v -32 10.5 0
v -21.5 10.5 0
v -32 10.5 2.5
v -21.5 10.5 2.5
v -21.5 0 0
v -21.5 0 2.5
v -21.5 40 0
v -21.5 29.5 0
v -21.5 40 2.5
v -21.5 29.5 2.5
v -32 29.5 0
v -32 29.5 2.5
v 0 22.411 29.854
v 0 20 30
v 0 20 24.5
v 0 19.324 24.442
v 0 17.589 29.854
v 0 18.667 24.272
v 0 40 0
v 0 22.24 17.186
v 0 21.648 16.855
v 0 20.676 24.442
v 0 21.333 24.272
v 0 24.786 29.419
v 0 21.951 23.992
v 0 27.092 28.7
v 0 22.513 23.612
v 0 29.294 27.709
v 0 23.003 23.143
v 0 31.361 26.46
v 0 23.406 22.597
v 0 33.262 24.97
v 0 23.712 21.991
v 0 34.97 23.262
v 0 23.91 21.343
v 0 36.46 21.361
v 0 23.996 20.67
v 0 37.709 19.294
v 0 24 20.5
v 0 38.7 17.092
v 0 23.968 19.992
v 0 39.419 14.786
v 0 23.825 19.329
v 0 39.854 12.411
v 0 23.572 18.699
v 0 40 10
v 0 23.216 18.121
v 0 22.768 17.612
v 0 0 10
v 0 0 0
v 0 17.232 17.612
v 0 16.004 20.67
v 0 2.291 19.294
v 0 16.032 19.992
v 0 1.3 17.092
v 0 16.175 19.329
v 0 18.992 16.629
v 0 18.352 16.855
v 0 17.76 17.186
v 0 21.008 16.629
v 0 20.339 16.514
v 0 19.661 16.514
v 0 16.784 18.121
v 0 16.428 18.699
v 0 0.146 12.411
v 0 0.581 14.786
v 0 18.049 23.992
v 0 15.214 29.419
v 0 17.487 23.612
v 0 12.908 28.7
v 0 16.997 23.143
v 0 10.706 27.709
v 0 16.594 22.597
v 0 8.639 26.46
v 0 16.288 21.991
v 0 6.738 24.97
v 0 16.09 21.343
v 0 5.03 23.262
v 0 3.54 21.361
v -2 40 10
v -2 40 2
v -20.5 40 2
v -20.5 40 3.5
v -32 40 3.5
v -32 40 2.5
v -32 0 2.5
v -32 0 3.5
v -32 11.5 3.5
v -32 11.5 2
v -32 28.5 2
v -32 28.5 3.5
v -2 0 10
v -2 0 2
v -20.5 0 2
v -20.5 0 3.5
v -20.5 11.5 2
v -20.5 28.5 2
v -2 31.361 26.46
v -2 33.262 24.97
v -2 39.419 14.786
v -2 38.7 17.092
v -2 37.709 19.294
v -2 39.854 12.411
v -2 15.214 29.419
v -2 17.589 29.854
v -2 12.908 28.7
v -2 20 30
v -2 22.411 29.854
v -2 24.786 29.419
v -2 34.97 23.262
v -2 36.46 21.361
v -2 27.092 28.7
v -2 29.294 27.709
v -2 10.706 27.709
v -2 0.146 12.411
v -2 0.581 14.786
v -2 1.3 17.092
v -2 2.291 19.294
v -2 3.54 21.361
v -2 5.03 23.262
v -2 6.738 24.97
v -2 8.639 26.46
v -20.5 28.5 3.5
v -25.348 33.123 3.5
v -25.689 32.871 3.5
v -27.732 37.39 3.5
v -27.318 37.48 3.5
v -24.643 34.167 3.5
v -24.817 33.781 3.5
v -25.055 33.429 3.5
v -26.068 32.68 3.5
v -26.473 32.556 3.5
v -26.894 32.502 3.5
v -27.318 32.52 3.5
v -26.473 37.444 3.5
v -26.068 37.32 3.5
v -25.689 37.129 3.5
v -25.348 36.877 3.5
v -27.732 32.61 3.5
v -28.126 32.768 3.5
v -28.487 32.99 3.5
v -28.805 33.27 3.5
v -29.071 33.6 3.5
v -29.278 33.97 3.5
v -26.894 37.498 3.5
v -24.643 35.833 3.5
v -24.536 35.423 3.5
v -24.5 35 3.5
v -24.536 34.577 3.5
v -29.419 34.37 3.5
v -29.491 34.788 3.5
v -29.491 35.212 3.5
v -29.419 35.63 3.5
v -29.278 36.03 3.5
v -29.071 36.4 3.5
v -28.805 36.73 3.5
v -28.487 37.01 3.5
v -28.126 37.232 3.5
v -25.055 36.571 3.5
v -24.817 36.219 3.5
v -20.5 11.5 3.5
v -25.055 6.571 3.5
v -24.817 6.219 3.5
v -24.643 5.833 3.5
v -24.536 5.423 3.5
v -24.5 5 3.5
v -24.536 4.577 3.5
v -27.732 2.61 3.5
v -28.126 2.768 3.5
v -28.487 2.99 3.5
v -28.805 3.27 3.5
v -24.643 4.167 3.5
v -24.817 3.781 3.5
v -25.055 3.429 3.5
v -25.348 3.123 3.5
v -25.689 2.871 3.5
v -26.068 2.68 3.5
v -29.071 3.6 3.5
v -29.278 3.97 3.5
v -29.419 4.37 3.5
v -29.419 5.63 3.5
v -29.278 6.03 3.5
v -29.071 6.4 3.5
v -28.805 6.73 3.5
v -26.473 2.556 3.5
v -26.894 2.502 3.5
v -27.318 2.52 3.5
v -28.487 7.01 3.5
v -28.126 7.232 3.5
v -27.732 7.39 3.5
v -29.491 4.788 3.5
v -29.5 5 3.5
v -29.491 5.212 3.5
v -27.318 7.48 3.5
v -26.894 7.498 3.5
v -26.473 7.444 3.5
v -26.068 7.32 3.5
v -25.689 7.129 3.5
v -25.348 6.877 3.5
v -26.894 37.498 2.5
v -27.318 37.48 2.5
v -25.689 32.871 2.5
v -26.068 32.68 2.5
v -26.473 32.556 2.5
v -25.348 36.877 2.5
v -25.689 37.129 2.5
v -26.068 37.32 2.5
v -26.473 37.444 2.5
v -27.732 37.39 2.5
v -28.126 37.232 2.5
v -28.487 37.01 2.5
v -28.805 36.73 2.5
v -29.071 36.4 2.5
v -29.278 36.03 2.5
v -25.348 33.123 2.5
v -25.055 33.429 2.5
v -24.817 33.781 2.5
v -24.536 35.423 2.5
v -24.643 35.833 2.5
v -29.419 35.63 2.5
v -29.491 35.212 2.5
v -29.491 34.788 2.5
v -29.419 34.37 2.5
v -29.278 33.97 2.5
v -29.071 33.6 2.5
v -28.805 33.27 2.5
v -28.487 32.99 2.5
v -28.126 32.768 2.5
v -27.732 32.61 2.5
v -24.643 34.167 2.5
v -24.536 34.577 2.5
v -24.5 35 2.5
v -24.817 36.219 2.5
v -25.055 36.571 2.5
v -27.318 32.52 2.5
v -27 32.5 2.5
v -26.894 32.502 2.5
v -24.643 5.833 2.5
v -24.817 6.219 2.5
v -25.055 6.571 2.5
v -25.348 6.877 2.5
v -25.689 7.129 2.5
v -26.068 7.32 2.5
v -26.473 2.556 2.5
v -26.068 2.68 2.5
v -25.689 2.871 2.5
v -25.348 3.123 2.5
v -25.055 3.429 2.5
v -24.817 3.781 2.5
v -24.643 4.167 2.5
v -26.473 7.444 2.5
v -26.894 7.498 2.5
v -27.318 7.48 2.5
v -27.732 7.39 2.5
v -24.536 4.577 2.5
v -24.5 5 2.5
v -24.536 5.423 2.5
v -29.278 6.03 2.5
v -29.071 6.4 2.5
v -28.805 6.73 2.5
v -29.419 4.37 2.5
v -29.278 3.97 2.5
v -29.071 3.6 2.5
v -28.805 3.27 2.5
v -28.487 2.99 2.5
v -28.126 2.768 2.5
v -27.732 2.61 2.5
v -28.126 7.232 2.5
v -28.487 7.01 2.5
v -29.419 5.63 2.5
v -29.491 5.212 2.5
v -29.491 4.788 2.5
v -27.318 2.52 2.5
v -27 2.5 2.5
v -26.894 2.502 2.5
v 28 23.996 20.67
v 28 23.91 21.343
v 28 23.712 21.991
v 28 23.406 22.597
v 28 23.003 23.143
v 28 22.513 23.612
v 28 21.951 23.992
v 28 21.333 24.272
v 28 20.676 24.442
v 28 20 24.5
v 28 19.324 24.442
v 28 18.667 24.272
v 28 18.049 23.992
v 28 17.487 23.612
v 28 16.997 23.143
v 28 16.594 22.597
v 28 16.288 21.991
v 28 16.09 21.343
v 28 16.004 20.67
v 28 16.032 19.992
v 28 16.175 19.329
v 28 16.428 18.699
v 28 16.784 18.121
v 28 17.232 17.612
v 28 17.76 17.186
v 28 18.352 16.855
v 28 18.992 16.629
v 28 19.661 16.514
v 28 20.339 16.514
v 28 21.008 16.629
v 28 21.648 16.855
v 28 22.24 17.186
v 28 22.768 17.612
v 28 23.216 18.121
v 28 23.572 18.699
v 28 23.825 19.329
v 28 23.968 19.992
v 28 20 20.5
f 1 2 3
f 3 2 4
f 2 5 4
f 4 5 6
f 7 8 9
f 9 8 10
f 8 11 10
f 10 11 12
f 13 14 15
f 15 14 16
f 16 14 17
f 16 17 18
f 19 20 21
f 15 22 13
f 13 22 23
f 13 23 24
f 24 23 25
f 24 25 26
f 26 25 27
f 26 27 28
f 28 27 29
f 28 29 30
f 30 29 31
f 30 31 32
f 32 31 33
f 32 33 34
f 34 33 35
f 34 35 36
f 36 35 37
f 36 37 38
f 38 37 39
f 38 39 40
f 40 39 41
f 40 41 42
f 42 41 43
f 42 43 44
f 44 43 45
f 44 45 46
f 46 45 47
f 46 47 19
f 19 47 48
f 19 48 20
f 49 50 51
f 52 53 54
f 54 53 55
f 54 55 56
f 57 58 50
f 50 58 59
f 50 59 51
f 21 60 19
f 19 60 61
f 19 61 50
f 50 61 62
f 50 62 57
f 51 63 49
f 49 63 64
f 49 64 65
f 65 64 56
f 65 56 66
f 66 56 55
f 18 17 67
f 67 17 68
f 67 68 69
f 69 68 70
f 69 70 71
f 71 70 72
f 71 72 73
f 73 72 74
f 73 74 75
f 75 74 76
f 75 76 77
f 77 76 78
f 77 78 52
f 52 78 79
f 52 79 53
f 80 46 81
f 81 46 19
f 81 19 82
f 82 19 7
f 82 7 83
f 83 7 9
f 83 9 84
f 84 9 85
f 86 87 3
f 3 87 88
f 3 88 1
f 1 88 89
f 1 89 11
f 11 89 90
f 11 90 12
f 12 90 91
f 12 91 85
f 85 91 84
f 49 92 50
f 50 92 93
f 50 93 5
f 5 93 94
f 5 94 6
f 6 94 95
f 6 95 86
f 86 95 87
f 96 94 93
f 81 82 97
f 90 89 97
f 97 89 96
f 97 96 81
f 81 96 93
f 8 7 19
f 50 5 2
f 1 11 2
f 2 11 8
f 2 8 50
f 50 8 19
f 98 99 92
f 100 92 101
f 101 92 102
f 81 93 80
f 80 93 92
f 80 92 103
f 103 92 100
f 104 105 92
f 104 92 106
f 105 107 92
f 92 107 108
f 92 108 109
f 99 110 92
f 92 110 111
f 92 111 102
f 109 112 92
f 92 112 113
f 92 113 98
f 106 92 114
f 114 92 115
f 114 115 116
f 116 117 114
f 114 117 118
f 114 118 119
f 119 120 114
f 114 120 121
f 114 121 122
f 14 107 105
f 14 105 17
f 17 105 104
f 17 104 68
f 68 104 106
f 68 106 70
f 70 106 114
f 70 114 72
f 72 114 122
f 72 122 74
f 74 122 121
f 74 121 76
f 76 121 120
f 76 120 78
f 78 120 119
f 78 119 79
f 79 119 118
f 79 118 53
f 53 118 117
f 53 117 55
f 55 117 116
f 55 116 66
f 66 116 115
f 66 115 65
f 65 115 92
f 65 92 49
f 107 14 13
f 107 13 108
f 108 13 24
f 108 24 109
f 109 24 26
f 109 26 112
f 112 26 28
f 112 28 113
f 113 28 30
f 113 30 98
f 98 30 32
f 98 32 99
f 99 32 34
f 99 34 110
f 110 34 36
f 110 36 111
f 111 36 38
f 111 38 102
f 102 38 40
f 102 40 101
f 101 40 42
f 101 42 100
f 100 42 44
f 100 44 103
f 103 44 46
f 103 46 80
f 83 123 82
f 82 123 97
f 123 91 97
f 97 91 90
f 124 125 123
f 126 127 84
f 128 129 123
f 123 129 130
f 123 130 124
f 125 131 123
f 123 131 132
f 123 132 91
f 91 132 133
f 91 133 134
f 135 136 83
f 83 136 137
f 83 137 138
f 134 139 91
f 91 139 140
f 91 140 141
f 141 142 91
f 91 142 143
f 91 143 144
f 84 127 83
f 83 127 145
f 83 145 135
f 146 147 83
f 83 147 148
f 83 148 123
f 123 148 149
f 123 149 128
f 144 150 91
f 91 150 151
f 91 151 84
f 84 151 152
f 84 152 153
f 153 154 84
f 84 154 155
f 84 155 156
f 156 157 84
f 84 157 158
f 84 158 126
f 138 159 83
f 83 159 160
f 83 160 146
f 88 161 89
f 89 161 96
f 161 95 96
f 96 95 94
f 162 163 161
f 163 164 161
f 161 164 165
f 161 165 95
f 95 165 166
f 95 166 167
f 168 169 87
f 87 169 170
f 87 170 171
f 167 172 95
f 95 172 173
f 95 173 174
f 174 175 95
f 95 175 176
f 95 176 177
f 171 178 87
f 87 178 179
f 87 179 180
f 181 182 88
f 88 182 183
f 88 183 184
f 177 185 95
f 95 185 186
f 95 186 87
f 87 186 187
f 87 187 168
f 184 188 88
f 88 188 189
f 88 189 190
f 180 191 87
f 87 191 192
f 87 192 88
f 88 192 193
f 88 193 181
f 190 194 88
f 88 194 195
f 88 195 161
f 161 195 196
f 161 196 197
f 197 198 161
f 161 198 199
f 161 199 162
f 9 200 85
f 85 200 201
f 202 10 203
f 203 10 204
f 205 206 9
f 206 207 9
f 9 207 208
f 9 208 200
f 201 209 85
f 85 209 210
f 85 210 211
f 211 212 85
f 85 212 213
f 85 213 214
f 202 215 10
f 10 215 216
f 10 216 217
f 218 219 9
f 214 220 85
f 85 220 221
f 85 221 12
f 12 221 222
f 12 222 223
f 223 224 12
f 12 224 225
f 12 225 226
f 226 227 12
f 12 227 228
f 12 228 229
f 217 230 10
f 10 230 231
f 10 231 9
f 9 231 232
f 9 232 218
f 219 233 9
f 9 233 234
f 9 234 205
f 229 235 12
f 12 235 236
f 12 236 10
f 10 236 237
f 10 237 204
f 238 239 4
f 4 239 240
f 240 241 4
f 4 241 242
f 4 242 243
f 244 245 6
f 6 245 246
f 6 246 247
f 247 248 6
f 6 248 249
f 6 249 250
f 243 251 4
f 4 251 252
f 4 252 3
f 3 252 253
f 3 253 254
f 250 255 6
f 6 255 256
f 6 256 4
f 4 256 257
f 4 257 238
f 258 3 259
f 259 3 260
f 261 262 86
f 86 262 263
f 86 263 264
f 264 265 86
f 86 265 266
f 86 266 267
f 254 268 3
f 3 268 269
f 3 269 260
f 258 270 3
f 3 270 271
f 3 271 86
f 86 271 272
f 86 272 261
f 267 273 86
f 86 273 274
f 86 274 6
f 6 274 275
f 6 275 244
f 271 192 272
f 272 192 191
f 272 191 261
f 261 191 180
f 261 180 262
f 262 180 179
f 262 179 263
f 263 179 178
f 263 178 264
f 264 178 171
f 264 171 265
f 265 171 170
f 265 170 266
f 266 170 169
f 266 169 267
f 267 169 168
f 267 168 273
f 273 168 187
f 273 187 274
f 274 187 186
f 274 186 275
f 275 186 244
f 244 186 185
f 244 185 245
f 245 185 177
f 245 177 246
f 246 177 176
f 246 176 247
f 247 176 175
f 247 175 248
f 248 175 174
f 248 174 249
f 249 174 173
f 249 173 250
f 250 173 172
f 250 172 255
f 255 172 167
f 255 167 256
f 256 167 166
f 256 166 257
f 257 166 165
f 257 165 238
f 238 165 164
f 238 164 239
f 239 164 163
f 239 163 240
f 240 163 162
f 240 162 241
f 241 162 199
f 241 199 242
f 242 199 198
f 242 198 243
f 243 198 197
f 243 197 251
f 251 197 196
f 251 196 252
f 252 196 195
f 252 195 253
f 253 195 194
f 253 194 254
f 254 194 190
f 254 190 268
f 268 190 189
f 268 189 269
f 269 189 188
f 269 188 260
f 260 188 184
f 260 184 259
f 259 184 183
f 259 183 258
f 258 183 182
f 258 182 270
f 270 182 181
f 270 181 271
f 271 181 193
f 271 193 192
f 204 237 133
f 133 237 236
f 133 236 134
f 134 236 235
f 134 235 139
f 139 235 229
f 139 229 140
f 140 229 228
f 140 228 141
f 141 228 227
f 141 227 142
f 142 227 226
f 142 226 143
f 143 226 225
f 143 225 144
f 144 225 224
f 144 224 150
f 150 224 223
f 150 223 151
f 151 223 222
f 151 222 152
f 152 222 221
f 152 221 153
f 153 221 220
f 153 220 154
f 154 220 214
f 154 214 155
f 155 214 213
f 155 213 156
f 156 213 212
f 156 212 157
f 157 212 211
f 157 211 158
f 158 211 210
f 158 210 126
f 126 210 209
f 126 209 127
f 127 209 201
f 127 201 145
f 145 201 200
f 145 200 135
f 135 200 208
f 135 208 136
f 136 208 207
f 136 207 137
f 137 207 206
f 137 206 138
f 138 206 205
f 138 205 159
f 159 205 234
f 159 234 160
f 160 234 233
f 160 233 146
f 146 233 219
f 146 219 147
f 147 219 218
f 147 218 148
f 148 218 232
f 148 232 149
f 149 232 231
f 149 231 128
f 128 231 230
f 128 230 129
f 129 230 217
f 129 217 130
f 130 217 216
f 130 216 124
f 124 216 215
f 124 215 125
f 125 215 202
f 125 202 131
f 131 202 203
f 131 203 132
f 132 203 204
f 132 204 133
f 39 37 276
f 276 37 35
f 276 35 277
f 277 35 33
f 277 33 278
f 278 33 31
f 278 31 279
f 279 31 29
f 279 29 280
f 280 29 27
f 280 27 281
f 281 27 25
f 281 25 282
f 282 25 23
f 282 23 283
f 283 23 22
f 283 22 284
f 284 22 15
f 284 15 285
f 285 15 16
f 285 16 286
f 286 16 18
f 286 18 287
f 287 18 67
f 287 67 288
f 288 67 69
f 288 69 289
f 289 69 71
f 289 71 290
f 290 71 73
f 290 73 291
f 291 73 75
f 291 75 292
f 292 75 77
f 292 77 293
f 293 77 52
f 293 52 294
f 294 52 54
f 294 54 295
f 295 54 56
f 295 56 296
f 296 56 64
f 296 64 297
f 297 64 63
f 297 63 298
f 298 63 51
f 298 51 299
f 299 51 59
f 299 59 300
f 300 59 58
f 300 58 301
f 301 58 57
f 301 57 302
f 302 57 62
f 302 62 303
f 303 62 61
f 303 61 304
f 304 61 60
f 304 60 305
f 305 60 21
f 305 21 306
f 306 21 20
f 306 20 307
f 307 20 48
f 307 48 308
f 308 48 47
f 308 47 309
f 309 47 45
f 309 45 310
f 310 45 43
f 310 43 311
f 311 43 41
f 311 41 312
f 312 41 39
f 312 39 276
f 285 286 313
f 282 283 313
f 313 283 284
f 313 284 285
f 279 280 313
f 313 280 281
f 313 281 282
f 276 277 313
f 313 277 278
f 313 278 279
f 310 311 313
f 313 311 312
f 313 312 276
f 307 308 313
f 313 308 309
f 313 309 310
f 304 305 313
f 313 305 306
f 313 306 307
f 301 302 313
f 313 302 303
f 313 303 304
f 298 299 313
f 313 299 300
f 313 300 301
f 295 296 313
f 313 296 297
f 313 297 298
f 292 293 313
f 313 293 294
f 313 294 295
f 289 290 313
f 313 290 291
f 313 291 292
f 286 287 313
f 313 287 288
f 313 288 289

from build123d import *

# Parameters (mm, degrees)
ESQUISSE1_W             = 32
ESQUISSE1_H             = 40
BOSS_EXTRU_1_DEPTH      = 2
ESQUISSE2_W             = 2
ESQUISSE2_H             = 40
BOSS_EXTRU_2_DEPTH      = 28
CONG_1_R                = 20
ESQUISSE3_R             = 4
ENL_V_MAT_EXTRU_1_DEPTH = 30
ESQUISSE4_W             = 10.5
ESQUISSE4_H             = 10.5
ENL_V_MAT_EXTRU_2_DEPTH = 30
ESQUISSE5_W             = 1
ESQUISSE5_H             = 1
ESQUISSE5_W_2           = 10.5
ESQUISSE5_H_2           = 10.5
BOSS_EXTRU_5_DEPTH      = 1.5
ESQUISSE6_W             = 1
ESQUISSE6_H             = 10.5
BOSS_EXTRU_6_DEPTH      = 10.5
ESQUISSE7_R             = 2.5
ENL_V_MAT_EXTRU_3_DEPTH = 10.5
BOSS_EXTRU_7_START      = -30
ESQUISSE8_R             = 4
BOSS_EXTRU_7_DEPTH      = 30


with BuildPart() as part:
    # Esquisse1 → Boss.-Extru.1 (new body)
    with BuildSketch(Plane.XY):
        with Locations((-16, 20)):
            Rectangle(ESQUISSE1_W, ESQUISSE1_H)
    extrude(amount=BOSS_EXTRU_1_DEPTH)

    # Esquisse2 → Boss.-Extru.2 (add)
    with BuildSketch(Plane.XY.offset(2)):
        with Locations((-1, 20)):
            Rectangle(ESQUISSE2_W, ESQUISSE2_H)
    extrude(amount=BOSS_EXTRU_2_DEPTH)

    # Congé1
    cong_1_edges = [part.edges().sort_by_distance(p)[0] for p in [
        (-1, 40, 30),
        (-1, 0, 30),
    ]]
    fillet(cong_1_edges, radius=CONG_1_R - 0.0001)  # a hair under: the kernel refuses the full size

    # Esquisse3 → Enlèv. mat.-Extru.1 (cut)
    with BuildSketch(Plane(origin=(0, 0, 0), x_dir=(0, 0, -1), z_dir=(1, 0, 0))):
        with Locations(Location((-20.5, 20, 0), (0, 0, 90))):
            Circle(ESQUISSE3_R)
    extrude(amount=-ENL_V_MAT_EXTRU_1_DEPTH, mode=Mode.SUBTRACT)

    # Esquisse4 → Enlèv. mat.-Extru.2 (cut)
    with BuildSketch(Plane.XY.offset(2)):
        with Locations((-26.75, 34.75)):
            Rectangle(ESQUISSE4_W, ESQUISSE4_H)
        with Locations((-26.75, 5.25)):
            Rectangle(ESQUISSE4_W, ESQUISSE4_H)
    extrude(amount=-ENL_V_MAT_EXTRU_2_DEPTH, mode=Mode.SUBTRACT)

    # Esquisse5 → Boss.-Extru.5 (add)
    with BuildSketch(Plane.XY.offset(2)):
        with Locations((-21, 29)):
            Rectangle(ESQUISSE5_W, ESQUISSE5_H)
        with Locations((-26.75, 29)):
            Rectangle(ESQUISSE5_W_2, ESQUISSE5_H)
        with Locations((-21, 34.75)):
            Rectangle(ESQUISSE5_W, ESQUISSE5_H_2)
        with Locations((-21, 11)):
            Rectangle(ESQUISSE5_W, ESQUISSE5_H)
        with Locations((-21, 5.25)):
            Rectangle(ESQUISSE5_W, ESQUISSE5_H_2)
        with Locations((-26.75, 11)):
            Rectangle(ESQUISSE5_W_2, ESQUISSE5_H)
    extrude(amount=BOSS_EXTRU_5_DEPTH)

    # Esquisse6 → Boss.-Extru.6 (add)
    with BuildSketch(Plane.ZY.offset(21.5)):
        with Locations((3, 34.75)):
            Rectangle(ESQUISSE6_W, ESQUISSE6_H)
        with Locations((3, 5.25)):
            Rectangle(ESQUISSE6_W, ESQUISSE6_H)
    extrude(amount=BOSS_EXTRU_6_DEPTH)

    # Esquisse7 → Enlèv. mat.-Extru.3 (cut)
    with BuildSketch(Plane.XY.offset(3.5)):
        with Locations((-27, 35)):
            Circle(ESQUISSE7_R)
        with Locations((-27, 5)):
            Circle(ESQUISSE7_R)
    extrude(amount=-ENL_V_MAT_EXTRU_3_DEPTH, mode=Mode.SUBTRACT)

    # Esquisse8 → Boss.-Extru.7 (add)
    with BuildSketch(Plane.ZY.offset(2).offset(BOSS_EXTRU_7_START)):
        with Locations((20.5, 20)):
            Circle(ESQUISSE8_R)
    extrude(amount=BOSS_EXTRU_7_DEPTH)


solid = part.part
